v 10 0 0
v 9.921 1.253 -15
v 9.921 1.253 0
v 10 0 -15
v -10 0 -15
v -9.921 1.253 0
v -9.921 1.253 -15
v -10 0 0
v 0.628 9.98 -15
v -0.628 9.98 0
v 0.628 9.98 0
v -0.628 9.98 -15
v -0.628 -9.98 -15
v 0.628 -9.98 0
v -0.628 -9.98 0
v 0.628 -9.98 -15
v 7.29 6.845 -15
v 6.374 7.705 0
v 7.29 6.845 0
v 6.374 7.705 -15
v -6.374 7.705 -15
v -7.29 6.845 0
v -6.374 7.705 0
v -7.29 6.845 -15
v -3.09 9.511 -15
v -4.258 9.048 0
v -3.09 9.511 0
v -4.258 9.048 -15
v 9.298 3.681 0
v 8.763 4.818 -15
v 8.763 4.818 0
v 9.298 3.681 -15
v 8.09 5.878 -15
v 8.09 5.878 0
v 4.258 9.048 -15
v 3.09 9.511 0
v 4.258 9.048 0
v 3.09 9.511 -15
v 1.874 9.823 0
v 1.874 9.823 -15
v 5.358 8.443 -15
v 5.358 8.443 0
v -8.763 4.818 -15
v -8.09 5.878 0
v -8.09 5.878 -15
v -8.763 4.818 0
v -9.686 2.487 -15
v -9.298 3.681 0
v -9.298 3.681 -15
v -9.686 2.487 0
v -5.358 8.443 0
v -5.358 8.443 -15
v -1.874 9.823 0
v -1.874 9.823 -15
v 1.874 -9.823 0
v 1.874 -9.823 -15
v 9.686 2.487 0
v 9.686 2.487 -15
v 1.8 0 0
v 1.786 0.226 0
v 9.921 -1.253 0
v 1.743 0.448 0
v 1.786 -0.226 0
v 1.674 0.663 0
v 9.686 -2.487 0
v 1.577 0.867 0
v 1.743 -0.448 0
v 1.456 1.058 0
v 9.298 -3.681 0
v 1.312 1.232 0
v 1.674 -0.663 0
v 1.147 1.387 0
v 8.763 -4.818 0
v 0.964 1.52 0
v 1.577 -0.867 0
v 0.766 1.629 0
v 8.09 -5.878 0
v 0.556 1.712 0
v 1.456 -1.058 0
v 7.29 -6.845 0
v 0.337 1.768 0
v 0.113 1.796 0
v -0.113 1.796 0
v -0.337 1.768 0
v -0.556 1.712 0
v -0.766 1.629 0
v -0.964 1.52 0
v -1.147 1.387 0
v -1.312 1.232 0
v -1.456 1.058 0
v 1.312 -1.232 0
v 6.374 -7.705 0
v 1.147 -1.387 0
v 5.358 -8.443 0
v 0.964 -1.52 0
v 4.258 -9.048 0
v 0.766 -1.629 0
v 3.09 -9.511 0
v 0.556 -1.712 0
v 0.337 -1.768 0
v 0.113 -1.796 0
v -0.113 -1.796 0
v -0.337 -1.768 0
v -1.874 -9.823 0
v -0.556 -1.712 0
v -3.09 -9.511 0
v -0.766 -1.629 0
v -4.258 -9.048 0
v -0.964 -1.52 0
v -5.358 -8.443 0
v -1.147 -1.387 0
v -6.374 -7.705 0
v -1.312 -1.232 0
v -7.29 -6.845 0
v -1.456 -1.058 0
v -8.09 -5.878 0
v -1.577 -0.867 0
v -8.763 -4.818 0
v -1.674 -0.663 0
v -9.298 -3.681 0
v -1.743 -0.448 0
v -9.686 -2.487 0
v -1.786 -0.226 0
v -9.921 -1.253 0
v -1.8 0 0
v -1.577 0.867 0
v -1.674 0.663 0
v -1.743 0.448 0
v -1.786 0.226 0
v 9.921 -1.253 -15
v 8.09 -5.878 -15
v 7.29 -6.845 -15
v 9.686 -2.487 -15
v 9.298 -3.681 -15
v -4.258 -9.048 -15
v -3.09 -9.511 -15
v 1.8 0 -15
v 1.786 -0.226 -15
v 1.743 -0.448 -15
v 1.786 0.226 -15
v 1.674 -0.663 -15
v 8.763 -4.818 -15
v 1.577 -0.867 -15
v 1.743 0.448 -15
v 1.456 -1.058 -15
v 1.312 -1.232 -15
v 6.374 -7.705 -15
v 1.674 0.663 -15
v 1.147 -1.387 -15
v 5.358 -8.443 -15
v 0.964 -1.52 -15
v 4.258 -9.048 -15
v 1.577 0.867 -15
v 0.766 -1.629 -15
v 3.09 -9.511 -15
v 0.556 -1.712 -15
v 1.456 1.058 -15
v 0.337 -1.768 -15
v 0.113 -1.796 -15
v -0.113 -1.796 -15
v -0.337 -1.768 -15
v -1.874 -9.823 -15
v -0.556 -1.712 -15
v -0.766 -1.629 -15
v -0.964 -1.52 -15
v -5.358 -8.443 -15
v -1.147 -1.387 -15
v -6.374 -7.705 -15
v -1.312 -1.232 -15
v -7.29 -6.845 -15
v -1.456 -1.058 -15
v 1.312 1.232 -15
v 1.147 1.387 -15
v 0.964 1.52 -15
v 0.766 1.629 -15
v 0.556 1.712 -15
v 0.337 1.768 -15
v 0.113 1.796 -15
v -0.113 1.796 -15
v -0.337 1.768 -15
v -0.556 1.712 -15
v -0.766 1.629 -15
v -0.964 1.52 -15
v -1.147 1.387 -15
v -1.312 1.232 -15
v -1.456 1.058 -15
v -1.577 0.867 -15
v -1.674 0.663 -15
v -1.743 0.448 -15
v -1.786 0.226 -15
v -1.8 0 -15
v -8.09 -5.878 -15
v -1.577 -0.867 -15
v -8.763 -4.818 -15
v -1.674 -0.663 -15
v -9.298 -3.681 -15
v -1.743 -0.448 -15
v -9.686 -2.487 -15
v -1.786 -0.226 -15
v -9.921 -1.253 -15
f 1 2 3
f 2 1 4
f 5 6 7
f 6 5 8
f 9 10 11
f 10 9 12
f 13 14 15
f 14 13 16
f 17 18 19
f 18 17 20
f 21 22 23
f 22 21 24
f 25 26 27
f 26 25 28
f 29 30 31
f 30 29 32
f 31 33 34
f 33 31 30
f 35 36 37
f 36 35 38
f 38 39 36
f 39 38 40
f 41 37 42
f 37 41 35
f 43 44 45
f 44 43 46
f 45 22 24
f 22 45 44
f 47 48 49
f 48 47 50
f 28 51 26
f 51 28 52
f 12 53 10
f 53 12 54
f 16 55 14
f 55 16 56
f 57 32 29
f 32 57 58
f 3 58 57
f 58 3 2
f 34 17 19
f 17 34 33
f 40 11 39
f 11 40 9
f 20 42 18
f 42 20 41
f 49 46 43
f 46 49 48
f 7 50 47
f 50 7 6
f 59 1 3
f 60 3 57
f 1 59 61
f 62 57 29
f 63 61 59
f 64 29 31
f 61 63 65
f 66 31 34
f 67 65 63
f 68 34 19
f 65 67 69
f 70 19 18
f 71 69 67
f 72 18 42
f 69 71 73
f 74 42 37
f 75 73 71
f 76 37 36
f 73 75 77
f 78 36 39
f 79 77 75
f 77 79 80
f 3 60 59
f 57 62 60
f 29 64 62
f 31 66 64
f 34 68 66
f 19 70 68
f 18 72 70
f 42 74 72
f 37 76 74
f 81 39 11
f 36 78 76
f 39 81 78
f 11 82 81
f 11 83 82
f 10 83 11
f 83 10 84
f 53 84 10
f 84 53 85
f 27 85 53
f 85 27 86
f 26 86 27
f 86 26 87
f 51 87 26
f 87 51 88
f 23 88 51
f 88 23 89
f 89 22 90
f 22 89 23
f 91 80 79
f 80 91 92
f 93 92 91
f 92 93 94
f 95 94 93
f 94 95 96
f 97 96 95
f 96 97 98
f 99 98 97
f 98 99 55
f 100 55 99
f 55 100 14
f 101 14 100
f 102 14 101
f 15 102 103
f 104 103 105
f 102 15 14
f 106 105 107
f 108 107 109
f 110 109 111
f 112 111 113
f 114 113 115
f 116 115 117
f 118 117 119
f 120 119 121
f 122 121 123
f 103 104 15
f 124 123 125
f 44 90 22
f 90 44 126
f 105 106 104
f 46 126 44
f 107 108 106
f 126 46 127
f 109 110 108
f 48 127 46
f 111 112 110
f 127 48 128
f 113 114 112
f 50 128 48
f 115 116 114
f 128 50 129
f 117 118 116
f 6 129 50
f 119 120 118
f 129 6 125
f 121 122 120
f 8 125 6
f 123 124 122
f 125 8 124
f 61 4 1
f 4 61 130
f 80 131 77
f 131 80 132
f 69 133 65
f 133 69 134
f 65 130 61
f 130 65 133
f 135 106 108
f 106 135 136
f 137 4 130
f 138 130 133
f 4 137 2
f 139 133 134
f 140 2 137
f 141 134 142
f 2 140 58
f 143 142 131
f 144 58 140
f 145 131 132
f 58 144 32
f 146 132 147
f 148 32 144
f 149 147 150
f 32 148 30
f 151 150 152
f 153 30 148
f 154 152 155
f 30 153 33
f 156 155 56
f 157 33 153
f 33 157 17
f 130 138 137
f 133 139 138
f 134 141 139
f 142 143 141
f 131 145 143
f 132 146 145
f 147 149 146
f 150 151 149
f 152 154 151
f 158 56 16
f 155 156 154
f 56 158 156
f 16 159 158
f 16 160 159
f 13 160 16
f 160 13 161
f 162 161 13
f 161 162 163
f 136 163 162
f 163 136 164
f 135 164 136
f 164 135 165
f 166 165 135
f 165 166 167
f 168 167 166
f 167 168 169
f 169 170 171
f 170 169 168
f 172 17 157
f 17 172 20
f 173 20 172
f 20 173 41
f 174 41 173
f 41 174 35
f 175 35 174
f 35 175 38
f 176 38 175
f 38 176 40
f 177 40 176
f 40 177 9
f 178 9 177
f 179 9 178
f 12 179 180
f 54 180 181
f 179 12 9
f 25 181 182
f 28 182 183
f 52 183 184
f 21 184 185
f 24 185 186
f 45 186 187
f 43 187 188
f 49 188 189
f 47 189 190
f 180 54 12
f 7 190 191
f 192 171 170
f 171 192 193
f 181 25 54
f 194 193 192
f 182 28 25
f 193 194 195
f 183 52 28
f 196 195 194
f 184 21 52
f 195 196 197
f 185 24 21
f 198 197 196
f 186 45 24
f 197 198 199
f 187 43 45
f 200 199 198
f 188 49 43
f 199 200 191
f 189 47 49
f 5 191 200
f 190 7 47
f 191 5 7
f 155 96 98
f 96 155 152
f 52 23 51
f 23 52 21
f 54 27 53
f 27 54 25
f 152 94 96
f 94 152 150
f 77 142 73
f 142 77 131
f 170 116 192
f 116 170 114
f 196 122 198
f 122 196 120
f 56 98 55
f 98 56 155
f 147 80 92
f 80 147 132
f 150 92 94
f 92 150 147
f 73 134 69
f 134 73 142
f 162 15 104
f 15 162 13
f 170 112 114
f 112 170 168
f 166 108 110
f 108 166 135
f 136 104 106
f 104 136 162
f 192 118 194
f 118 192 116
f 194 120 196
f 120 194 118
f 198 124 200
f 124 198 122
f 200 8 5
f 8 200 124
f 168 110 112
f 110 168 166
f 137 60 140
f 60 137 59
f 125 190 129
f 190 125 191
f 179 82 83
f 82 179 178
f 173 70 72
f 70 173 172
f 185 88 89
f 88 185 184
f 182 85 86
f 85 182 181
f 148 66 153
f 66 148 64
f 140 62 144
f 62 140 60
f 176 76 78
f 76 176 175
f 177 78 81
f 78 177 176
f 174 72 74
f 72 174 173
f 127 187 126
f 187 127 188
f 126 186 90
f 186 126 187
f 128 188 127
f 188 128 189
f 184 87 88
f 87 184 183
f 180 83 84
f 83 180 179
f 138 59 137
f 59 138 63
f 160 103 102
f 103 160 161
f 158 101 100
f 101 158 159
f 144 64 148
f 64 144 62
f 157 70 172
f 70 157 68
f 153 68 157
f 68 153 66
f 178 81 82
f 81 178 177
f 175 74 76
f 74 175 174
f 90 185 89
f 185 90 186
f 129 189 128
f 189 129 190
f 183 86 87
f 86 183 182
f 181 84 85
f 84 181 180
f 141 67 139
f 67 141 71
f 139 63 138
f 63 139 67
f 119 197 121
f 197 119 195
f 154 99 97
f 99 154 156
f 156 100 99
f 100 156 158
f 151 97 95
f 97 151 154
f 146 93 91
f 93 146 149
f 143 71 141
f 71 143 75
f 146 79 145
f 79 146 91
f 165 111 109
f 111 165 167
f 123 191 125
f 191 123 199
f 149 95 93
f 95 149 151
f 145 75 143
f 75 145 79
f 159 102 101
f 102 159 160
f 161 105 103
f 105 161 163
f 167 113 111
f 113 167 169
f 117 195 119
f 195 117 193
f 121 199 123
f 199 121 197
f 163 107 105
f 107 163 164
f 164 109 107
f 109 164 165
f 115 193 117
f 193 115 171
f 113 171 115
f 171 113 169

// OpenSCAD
$fn = 50;


difference() {
	union() {
		translate(v = [0, 0, -15.0000000000]) {
			cylinder(h = 15, r = 10.0000000000);
		}
	}
	union() {
		#translate(v = [0, 0, -15]) {
			cylinder(h = 15, r = 1.8000000000);
		}
	}
}
